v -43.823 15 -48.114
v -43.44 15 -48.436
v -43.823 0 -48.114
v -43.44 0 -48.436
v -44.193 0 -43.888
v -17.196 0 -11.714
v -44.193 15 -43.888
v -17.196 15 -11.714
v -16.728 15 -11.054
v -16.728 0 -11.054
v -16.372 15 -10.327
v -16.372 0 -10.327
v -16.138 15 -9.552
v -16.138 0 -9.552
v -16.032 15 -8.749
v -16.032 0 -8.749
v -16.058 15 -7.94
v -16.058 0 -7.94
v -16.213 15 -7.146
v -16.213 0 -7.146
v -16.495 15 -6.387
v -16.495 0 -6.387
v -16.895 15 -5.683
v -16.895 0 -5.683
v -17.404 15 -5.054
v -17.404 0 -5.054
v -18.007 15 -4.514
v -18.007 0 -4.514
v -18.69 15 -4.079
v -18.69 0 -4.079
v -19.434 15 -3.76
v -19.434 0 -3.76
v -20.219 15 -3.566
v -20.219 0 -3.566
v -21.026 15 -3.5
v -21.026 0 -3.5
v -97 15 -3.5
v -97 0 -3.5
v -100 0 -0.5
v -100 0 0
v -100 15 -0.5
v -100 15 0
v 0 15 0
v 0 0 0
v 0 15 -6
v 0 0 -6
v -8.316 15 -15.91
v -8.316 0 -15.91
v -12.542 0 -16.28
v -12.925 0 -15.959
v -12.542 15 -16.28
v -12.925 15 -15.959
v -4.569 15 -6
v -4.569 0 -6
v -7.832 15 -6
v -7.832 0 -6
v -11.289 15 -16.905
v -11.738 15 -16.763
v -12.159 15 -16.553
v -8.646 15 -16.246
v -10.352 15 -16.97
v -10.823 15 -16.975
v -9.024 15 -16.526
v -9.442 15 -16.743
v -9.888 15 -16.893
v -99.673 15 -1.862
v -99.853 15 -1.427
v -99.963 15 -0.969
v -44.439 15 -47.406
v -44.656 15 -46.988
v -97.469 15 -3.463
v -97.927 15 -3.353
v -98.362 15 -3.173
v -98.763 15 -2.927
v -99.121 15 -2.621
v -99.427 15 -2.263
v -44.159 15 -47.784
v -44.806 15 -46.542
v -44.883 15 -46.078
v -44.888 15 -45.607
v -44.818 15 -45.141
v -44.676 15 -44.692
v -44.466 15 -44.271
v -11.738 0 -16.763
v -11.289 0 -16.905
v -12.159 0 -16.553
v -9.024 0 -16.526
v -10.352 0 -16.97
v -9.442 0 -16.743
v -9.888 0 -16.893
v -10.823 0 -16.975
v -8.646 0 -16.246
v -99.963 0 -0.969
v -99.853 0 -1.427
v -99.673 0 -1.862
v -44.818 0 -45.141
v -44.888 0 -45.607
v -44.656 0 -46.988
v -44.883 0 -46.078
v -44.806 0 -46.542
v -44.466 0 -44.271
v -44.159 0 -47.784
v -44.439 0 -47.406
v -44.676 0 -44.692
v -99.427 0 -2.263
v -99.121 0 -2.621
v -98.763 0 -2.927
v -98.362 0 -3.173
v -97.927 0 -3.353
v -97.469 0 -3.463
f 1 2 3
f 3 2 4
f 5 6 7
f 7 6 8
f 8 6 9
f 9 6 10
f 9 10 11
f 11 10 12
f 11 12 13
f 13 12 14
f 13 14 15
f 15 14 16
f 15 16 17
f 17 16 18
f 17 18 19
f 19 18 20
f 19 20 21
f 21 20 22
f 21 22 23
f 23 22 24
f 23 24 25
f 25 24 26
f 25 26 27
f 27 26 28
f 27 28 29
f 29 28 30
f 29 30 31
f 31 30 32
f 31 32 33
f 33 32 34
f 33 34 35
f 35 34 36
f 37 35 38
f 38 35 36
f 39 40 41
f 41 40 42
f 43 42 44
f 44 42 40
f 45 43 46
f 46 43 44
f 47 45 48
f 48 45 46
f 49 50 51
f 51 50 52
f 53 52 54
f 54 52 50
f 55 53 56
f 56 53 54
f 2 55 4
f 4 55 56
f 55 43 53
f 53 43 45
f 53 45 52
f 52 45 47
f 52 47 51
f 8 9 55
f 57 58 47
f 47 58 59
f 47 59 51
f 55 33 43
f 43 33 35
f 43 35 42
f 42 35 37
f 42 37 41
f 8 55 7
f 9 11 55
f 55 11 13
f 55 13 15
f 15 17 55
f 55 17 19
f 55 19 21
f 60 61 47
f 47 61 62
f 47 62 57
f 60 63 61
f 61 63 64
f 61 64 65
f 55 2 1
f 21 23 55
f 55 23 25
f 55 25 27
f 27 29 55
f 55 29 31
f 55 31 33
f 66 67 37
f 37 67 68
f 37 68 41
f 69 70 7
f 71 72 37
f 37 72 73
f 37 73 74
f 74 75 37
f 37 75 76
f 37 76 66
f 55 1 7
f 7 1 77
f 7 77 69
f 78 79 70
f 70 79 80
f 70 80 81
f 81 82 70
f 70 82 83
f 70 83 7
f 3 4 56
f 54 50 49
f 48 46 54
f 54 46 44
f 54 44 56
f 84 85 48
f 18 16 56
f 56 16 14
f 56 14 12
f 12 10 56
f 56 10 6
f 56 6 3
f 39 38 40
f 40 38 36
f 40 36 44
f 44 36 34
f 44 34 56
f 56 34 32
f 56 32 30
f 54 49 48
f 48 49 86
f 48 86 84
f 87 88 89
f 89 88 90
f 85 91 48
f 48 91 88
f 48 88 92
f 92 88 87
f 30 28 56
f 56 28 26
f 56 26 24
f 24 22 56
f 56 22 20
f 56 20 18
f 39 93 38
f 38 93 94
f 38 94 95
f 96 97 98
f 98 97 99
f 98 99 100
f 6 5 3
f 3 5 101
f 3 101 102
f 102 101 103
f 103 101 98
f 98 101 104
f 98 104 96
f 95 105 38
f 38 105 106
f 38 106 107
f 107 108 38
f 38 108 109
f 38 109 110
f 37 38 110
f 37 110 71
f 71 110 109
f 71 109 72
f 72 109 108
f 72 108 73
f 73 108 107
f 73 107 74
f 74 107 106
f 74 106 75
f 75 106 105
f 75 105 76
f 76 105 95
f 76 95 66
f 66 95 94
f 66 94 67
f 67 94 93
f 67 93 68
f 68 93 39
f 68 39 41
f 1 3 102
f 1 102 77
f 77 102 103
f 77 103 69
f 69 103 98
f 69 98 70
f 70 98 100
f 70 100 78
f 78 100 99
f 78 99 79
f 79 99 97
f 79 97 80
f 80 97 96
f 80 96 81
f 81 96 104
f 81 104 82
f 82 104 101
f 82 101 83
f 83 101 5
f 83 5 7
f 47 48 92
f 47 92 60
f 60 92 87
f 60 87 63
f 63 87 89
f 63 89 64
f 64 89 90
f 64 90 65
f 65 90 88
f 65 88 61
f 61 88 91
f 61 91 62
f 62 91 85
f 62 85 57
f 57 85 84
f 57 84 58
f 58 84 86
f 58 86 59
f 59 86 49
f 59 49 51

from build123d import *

# Parameters (mm, degrees)
BOSS_EXTRUDE1_DEPTH = 15
FILLET1_R           = 3


with BuildPart() as part:
    # Sketch1 → Boss-Extrude1 (new body)
    with BuildSketch(Plane(origin=(0, 0, 0), x_dir=(1, 0, 0), z_dir=(0, 1, 0))):
        with BuildLine():
            Line((-46.121374994, 46.185937989), (-17.195932558, 11.713938048))
            ThreePointArc((-17.195932558, 11.713938048), (-16.494615838, 6.386908691), (-21.026154773, 3.5))
            Line((-21.026154773, 3.5), (-100, 3.5))
            Line((-100, 3.5), (-100, 0))
            Line((-100, 0), (0, 0))
            Line((0, 0), (0, 6))
            Line((0, 6), (-10.244008888, 18.208334394))
            Line((-10.244008888, 18.208334394), (-12.925164439, 15.958577761))
            Line((-12.925164439, 15.958577761), (-4.568925513, 6))
            Line((-4.568925513, 6), (-7.832443736, 6))
            Line((-7.832443736, 6), (-43.440219443, 48.435694623))
            Line((-43.440219443, 48.435694623), (-46.121374994, 46.185937989))
        make_face()
    extrude(amount=BOSS_EXTRUDE1_DEPTH)

    # Fillet1
    fillet1_edges = [part.edges().sort_by_distance(p)[0] for p in [
        (-10.244008888, 7.5, -18.208334394),
        (-100, 7.5, -3.5),
        (-46.121374994, 7.5, -46.185937989),
    ]]
    fillet(fillet1_edges, radius=FILLET1_R)


solid = part.part
